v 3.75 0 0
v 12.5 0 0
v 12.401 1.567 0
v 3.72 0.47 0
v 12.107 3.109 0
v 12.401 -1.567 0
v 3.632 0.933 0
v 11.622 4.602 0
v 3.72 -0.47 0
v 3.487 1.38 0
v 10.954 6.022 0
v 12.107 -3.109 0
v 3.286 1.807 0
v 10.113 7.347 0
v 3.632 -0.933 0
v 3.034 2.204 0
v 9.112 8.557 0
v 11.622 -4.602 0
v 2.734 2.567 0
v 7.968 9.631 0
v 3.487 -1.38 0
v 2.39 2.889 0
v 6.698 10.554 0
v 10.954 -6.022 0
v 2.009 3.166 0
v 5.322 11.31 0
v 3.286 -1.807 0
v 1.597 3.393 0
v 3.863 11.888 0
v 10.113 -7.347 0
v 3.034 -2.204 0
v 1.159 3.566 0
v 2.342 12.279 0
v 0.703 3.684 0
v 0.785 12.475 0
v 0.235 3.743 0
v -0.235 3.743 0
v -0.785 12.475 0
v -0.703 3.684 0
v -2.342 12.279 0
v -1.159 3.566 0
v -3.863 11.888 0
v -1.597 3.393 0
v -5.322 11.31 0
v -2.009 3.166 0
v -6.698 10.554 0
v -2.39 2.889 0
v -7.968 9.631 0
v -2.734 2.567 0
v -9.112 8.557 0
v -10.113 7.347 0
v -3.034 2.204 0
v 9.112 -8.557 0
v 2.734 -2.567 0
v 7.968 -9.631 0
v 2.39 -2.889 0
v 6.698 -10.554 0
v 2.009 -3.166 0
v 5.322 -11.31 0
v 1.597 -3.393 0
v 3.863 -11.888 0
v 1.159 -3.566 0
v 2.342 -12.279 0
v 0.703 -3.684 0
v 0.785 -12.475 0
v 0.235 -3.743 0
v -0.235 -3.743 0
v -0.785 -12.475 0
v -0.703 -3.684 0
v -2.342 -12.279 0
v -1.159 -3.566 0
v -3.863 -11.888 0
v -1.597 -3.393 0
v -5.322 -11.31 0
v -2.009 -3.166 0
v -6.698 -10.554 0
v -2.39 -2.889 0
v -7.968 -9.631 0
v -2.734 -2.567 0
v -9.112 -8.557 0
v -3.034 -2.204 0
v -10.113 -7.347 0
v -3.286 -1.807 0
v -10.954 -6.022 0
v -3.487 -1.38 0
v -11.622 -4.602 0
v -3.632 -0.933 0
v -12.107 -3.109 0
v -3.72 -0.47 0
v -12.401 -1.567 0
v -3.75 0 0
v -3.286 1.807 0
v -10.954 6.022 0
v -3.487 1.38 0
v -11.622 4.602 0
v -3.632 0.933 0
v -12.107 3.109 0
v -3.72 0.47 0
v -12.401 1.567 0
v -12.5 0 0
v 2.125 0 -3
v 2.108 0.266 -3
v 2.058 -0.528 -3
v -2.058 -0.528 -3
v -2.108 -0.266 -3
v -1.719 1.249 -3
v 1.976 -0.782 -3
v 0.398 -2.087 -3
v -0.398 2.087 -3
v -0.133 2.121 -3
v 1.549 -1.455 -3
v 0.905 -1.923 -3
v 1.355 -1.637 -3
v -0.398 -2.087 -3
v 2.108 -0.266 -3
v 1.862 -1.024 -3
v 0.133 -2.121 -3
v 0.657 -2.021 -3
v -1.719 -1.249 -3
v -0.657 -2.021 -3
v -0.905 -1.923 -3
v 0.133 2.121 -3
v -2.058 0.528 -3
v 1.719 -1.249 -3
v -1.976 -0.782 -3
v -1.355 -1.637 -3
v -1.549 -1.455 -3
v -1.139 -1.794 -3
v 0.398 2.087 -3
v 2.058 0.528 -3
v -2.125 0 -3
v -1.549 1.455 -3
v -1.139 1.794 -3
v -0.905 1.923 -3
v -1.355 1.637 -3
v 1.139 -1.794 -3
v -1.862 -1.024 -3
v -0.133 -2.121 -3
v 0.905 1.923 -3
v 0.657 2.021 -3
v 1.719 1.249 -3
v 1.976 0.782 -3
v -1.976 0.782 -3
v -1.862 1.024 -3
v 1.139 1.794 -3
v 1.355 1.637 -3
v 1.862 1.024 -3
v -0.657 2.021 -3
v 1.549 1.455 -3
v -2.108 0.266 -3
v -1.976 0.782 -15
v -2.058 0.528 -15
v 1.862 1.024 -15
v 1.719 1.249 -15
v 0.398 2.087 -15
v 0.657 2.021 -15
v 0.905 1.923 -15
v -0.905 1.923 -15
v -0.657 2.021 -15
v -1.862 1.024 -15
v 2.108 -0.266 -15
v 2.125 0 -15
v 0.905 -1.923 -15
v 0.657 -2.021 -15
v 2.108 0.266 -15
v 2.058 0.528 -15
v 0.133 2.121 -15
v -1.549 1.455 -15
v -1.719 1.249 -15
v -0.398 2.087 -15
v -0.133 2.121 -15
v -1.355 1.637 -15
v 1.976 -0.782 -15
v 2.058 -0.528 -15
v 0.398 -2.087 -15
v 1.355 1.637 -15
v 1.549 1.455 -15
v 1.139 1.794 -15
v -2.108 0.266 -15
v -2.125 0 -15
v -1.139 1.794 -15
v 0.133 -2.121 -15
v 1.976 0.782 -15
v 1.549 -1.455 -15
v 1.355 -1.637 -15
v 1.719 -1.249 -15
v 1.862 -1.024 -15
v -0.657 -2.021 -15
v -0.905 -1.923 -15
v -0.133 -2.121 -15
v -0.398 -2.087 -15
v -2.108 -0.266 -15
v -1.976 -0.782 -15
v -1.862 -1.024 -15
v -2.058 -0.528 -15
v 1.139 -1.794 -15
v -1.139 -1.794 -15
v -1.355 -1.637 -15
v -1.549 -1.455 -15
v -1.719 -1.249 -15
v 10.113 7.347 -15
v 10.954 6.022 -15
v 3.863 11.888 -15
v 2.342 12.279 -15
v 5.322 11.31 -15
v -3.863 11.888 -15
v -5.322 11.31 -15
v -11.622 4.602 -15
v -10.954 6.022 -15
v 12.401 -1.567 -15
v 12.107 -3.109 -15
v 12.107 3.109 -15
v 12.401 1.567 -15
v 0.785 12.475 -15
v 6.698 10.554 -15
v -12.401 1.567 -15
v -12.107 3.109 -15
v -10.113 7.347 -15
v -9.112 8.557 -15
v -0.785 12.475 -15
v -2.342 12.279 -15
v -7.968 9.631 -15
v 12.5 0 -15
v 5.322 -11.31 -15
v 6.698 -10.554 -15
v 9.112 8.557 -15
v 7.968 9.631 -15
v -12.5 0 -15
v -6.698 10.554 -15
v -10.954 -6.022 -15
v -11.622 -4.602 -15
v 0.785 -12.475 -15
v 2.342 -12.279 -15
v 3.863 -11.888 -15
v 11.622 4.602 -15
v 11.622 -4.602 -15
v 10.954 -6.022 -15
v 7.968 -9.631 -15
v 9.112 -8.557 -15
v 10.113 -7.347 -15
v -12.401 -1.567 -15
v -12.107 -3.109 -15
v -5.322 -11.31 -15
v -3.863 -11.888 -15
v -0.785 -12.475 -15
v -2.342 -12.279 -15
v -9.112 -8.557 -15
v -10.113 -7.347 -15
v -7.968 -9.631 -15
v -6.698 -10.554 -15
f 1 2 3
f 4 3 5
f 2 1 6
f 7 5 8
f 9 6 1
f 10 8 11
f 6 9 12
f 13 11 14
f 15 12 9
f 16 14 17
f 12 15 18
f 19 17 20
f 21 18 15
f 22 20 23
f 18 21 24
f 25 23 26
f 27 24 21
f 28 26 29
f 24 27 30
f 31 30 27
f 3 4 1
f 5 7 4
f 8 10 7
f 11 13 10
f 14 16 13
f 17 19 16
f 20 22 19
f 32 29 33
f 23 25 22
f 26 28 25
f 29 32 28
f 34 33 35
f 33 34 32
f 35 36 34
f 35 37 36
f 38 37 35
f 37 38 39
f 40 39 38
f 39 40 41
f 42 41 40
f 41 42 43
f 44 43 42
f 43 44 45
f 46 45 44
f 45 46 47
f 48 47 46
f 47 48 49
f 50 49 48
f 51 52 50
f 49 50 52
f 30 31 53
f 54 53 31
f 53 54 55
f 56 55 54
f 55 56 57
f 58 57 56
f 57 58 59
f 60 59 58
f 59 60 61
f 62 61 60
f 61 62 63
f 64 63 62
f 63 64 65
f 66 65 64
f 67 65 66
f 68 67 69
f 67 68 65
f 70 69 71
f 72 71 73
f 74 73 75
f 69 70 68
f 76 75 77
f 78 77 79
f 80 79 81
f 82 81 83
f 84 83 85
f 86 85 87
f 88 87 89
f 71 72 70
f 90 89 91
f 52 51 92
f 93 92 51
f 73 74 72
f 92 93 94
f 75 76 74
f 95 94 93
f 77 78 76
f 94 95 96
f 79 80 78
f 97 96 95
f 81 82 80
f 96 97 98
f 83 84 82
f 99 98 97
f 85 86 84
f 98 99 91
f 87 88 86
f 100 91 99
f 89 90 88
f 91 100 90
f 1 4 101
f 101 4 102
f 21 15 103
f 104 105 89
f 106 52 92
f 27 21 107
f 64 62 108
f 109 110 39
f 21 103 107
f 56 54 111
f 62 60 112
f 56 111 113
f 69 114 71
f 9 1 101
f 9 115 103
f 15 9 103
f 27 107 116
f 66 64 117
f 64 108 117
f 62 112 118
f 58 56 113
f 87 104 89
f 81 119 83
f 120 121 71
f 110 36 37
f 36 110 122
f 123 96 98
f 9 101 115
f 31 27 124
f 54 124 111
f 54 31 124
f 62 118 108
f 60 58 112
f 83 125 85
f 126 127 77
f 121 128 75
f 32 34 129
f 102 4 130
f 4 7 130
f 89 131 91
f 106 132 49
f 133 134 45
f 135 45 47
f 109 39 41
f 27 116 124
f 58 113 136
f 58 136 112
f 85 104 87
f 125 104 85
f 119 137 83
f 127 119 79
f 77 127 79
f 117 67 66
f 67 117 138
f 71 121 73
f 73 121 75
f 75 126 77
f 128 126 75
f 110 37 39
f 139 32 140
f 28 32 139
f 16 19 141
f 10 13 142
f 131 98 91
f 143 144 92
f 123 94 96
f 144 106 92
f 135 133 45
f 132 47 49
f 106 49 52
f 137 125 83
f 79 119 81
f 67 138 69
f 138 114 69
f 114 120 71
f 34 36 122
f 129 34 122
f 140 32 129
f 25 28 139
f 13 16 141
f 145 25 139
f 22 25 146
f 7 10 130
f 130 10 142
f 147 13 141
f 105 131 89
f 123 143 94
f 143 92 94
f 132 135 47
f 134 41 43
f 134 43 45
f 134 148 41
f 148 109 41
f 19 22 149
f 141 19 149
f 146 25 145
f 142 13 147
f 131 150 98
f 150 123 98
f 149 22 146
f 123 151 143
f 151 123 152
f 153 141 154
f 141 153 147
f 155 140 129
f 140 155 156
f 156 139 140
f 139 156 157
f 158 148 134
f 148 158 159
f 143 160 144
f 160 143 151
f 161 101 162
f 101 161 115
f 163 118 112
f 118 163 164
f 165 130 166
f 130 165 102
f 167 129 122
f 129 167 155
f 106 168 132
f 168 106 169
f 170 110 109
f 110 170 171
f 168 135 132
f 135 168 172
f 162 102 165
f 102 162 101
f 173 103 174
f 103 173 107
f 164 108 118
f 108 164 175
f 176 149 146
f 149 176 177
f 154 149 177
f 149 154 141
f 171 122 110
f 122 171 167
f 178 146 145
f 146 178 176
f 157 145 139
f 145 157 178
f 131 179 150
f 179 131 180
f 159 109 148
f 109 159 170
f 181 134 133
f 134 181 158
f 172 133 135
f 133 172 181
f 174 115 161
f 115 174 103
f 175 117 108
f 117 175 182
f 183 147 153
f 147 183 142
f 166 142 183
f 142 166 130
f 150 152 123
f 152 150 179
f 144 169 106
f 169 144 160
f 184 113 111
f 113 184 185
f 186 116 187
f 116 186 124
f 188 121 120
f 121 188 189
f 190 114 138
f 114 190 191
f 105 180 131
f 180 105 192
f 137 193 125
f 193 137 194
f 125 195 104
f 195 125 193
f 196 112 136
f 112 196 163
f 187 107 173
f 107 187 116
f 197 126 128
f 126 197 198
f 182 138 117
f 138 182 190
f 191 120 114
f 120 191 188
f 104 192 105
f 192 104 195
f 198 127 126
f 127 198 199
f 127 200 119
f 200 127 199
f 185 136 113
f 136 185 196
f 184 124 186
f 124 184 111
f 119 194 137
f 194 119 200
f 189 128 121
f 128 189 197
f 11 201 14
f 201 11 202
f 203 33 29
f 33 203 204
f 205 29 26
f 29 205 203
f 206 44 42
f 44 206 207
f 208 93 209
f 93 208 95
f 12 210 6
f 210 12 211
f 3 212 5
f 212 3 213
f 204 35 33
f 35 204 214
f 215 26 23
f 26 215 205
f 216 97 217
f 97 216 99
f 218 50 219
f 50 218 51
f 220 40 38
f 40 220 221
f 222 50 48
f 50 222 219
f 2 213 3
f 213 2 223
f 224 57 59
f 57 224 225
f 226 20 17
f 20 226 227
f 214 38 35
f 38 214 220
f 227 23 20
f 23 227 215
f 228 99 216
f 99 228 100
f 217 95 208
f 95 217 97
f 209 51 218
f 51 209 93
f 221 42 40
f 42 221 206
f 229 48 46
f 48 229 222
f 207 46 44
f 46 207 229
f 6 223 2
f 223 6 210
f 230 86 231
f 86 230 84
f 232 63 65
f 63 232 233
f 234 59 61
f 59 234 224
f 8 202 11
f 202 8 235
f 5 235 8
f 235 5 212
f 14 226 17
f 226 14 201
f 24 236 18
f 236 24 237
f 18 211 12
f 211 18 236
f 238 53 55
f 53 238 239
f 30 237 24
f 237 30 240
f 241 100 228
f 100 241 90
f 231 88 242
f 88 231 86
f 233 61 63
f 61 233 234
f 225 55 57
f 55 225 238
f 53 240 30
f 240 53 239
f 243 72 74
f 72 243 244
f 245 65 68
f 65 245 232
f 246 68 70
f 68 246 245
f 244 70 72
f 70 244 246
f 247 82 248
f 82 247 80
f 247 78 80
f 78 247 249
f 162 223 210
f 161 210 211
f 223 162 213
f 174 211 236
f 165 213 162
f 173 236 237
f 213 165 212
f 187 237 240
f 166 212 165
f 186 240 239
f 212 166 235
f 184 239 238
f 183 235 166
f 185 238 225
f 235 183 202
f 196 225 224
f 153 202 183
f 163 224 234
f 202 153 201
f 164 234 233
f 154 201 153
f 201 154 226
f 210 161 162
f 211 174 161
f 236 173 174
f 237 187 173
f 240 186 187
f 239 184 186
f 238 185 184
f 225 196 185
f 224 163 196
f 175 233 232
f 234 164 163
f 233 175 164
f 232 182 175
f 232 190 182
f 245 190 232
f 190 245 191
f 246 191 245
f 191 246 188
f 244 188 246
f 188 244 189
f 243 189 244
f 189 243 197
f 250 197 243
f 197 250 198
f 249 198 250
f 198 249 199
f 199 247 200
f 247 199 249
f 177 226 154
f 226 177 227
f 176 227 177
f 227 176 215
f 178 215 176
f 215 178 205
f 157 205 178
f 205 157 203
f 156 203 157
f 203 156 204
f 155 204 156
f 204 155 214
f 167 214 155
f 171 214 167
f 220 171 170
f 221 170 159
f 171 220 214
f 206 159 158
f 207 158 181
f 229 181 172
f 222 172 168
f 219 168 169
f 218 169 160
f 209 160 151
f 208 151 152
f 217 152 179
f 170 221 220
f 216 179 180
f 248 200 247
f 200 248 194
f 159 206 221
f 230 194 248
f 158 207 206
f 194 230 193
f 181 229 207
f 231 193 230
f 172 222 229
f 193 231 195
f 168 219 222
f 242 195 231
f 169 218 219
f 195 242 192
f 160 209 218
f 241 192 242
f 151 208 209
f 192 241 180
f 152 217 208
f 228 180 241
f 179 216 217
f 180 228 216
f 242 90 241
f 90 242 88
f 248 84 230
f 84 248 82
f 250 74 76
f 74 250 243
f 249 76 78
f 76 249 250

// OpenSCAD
$fn = 50;

difference() {
	union() {
		translate(v = [0, 0, -15.0]) {
			cylinder(h = 15, r = 12.5);
		}
	}
	union() {
		translate(v = [0, 0, 0]) {
			rotate(a = [0, 0, 0]) {
				difference() {
					union() {
						translate(v = [0, 0, -18.0]) {
							cylinder(h = 18, r = 2.0);
						}
						translate(v = [0, 0, -3]) {
							cylinder(h = 3, r1 = 2.125, r2 = 3.75);
						}
						translate(v = [0, 0, -18.0]) {
							cylinder(h = 18, r = 2.125);
						}
						translate(v = [0, 0, -18.0]) {
							cylinder(h = 18, r = 2.0);
						}
					}
					union();
				}
			}
		}
	}
}
